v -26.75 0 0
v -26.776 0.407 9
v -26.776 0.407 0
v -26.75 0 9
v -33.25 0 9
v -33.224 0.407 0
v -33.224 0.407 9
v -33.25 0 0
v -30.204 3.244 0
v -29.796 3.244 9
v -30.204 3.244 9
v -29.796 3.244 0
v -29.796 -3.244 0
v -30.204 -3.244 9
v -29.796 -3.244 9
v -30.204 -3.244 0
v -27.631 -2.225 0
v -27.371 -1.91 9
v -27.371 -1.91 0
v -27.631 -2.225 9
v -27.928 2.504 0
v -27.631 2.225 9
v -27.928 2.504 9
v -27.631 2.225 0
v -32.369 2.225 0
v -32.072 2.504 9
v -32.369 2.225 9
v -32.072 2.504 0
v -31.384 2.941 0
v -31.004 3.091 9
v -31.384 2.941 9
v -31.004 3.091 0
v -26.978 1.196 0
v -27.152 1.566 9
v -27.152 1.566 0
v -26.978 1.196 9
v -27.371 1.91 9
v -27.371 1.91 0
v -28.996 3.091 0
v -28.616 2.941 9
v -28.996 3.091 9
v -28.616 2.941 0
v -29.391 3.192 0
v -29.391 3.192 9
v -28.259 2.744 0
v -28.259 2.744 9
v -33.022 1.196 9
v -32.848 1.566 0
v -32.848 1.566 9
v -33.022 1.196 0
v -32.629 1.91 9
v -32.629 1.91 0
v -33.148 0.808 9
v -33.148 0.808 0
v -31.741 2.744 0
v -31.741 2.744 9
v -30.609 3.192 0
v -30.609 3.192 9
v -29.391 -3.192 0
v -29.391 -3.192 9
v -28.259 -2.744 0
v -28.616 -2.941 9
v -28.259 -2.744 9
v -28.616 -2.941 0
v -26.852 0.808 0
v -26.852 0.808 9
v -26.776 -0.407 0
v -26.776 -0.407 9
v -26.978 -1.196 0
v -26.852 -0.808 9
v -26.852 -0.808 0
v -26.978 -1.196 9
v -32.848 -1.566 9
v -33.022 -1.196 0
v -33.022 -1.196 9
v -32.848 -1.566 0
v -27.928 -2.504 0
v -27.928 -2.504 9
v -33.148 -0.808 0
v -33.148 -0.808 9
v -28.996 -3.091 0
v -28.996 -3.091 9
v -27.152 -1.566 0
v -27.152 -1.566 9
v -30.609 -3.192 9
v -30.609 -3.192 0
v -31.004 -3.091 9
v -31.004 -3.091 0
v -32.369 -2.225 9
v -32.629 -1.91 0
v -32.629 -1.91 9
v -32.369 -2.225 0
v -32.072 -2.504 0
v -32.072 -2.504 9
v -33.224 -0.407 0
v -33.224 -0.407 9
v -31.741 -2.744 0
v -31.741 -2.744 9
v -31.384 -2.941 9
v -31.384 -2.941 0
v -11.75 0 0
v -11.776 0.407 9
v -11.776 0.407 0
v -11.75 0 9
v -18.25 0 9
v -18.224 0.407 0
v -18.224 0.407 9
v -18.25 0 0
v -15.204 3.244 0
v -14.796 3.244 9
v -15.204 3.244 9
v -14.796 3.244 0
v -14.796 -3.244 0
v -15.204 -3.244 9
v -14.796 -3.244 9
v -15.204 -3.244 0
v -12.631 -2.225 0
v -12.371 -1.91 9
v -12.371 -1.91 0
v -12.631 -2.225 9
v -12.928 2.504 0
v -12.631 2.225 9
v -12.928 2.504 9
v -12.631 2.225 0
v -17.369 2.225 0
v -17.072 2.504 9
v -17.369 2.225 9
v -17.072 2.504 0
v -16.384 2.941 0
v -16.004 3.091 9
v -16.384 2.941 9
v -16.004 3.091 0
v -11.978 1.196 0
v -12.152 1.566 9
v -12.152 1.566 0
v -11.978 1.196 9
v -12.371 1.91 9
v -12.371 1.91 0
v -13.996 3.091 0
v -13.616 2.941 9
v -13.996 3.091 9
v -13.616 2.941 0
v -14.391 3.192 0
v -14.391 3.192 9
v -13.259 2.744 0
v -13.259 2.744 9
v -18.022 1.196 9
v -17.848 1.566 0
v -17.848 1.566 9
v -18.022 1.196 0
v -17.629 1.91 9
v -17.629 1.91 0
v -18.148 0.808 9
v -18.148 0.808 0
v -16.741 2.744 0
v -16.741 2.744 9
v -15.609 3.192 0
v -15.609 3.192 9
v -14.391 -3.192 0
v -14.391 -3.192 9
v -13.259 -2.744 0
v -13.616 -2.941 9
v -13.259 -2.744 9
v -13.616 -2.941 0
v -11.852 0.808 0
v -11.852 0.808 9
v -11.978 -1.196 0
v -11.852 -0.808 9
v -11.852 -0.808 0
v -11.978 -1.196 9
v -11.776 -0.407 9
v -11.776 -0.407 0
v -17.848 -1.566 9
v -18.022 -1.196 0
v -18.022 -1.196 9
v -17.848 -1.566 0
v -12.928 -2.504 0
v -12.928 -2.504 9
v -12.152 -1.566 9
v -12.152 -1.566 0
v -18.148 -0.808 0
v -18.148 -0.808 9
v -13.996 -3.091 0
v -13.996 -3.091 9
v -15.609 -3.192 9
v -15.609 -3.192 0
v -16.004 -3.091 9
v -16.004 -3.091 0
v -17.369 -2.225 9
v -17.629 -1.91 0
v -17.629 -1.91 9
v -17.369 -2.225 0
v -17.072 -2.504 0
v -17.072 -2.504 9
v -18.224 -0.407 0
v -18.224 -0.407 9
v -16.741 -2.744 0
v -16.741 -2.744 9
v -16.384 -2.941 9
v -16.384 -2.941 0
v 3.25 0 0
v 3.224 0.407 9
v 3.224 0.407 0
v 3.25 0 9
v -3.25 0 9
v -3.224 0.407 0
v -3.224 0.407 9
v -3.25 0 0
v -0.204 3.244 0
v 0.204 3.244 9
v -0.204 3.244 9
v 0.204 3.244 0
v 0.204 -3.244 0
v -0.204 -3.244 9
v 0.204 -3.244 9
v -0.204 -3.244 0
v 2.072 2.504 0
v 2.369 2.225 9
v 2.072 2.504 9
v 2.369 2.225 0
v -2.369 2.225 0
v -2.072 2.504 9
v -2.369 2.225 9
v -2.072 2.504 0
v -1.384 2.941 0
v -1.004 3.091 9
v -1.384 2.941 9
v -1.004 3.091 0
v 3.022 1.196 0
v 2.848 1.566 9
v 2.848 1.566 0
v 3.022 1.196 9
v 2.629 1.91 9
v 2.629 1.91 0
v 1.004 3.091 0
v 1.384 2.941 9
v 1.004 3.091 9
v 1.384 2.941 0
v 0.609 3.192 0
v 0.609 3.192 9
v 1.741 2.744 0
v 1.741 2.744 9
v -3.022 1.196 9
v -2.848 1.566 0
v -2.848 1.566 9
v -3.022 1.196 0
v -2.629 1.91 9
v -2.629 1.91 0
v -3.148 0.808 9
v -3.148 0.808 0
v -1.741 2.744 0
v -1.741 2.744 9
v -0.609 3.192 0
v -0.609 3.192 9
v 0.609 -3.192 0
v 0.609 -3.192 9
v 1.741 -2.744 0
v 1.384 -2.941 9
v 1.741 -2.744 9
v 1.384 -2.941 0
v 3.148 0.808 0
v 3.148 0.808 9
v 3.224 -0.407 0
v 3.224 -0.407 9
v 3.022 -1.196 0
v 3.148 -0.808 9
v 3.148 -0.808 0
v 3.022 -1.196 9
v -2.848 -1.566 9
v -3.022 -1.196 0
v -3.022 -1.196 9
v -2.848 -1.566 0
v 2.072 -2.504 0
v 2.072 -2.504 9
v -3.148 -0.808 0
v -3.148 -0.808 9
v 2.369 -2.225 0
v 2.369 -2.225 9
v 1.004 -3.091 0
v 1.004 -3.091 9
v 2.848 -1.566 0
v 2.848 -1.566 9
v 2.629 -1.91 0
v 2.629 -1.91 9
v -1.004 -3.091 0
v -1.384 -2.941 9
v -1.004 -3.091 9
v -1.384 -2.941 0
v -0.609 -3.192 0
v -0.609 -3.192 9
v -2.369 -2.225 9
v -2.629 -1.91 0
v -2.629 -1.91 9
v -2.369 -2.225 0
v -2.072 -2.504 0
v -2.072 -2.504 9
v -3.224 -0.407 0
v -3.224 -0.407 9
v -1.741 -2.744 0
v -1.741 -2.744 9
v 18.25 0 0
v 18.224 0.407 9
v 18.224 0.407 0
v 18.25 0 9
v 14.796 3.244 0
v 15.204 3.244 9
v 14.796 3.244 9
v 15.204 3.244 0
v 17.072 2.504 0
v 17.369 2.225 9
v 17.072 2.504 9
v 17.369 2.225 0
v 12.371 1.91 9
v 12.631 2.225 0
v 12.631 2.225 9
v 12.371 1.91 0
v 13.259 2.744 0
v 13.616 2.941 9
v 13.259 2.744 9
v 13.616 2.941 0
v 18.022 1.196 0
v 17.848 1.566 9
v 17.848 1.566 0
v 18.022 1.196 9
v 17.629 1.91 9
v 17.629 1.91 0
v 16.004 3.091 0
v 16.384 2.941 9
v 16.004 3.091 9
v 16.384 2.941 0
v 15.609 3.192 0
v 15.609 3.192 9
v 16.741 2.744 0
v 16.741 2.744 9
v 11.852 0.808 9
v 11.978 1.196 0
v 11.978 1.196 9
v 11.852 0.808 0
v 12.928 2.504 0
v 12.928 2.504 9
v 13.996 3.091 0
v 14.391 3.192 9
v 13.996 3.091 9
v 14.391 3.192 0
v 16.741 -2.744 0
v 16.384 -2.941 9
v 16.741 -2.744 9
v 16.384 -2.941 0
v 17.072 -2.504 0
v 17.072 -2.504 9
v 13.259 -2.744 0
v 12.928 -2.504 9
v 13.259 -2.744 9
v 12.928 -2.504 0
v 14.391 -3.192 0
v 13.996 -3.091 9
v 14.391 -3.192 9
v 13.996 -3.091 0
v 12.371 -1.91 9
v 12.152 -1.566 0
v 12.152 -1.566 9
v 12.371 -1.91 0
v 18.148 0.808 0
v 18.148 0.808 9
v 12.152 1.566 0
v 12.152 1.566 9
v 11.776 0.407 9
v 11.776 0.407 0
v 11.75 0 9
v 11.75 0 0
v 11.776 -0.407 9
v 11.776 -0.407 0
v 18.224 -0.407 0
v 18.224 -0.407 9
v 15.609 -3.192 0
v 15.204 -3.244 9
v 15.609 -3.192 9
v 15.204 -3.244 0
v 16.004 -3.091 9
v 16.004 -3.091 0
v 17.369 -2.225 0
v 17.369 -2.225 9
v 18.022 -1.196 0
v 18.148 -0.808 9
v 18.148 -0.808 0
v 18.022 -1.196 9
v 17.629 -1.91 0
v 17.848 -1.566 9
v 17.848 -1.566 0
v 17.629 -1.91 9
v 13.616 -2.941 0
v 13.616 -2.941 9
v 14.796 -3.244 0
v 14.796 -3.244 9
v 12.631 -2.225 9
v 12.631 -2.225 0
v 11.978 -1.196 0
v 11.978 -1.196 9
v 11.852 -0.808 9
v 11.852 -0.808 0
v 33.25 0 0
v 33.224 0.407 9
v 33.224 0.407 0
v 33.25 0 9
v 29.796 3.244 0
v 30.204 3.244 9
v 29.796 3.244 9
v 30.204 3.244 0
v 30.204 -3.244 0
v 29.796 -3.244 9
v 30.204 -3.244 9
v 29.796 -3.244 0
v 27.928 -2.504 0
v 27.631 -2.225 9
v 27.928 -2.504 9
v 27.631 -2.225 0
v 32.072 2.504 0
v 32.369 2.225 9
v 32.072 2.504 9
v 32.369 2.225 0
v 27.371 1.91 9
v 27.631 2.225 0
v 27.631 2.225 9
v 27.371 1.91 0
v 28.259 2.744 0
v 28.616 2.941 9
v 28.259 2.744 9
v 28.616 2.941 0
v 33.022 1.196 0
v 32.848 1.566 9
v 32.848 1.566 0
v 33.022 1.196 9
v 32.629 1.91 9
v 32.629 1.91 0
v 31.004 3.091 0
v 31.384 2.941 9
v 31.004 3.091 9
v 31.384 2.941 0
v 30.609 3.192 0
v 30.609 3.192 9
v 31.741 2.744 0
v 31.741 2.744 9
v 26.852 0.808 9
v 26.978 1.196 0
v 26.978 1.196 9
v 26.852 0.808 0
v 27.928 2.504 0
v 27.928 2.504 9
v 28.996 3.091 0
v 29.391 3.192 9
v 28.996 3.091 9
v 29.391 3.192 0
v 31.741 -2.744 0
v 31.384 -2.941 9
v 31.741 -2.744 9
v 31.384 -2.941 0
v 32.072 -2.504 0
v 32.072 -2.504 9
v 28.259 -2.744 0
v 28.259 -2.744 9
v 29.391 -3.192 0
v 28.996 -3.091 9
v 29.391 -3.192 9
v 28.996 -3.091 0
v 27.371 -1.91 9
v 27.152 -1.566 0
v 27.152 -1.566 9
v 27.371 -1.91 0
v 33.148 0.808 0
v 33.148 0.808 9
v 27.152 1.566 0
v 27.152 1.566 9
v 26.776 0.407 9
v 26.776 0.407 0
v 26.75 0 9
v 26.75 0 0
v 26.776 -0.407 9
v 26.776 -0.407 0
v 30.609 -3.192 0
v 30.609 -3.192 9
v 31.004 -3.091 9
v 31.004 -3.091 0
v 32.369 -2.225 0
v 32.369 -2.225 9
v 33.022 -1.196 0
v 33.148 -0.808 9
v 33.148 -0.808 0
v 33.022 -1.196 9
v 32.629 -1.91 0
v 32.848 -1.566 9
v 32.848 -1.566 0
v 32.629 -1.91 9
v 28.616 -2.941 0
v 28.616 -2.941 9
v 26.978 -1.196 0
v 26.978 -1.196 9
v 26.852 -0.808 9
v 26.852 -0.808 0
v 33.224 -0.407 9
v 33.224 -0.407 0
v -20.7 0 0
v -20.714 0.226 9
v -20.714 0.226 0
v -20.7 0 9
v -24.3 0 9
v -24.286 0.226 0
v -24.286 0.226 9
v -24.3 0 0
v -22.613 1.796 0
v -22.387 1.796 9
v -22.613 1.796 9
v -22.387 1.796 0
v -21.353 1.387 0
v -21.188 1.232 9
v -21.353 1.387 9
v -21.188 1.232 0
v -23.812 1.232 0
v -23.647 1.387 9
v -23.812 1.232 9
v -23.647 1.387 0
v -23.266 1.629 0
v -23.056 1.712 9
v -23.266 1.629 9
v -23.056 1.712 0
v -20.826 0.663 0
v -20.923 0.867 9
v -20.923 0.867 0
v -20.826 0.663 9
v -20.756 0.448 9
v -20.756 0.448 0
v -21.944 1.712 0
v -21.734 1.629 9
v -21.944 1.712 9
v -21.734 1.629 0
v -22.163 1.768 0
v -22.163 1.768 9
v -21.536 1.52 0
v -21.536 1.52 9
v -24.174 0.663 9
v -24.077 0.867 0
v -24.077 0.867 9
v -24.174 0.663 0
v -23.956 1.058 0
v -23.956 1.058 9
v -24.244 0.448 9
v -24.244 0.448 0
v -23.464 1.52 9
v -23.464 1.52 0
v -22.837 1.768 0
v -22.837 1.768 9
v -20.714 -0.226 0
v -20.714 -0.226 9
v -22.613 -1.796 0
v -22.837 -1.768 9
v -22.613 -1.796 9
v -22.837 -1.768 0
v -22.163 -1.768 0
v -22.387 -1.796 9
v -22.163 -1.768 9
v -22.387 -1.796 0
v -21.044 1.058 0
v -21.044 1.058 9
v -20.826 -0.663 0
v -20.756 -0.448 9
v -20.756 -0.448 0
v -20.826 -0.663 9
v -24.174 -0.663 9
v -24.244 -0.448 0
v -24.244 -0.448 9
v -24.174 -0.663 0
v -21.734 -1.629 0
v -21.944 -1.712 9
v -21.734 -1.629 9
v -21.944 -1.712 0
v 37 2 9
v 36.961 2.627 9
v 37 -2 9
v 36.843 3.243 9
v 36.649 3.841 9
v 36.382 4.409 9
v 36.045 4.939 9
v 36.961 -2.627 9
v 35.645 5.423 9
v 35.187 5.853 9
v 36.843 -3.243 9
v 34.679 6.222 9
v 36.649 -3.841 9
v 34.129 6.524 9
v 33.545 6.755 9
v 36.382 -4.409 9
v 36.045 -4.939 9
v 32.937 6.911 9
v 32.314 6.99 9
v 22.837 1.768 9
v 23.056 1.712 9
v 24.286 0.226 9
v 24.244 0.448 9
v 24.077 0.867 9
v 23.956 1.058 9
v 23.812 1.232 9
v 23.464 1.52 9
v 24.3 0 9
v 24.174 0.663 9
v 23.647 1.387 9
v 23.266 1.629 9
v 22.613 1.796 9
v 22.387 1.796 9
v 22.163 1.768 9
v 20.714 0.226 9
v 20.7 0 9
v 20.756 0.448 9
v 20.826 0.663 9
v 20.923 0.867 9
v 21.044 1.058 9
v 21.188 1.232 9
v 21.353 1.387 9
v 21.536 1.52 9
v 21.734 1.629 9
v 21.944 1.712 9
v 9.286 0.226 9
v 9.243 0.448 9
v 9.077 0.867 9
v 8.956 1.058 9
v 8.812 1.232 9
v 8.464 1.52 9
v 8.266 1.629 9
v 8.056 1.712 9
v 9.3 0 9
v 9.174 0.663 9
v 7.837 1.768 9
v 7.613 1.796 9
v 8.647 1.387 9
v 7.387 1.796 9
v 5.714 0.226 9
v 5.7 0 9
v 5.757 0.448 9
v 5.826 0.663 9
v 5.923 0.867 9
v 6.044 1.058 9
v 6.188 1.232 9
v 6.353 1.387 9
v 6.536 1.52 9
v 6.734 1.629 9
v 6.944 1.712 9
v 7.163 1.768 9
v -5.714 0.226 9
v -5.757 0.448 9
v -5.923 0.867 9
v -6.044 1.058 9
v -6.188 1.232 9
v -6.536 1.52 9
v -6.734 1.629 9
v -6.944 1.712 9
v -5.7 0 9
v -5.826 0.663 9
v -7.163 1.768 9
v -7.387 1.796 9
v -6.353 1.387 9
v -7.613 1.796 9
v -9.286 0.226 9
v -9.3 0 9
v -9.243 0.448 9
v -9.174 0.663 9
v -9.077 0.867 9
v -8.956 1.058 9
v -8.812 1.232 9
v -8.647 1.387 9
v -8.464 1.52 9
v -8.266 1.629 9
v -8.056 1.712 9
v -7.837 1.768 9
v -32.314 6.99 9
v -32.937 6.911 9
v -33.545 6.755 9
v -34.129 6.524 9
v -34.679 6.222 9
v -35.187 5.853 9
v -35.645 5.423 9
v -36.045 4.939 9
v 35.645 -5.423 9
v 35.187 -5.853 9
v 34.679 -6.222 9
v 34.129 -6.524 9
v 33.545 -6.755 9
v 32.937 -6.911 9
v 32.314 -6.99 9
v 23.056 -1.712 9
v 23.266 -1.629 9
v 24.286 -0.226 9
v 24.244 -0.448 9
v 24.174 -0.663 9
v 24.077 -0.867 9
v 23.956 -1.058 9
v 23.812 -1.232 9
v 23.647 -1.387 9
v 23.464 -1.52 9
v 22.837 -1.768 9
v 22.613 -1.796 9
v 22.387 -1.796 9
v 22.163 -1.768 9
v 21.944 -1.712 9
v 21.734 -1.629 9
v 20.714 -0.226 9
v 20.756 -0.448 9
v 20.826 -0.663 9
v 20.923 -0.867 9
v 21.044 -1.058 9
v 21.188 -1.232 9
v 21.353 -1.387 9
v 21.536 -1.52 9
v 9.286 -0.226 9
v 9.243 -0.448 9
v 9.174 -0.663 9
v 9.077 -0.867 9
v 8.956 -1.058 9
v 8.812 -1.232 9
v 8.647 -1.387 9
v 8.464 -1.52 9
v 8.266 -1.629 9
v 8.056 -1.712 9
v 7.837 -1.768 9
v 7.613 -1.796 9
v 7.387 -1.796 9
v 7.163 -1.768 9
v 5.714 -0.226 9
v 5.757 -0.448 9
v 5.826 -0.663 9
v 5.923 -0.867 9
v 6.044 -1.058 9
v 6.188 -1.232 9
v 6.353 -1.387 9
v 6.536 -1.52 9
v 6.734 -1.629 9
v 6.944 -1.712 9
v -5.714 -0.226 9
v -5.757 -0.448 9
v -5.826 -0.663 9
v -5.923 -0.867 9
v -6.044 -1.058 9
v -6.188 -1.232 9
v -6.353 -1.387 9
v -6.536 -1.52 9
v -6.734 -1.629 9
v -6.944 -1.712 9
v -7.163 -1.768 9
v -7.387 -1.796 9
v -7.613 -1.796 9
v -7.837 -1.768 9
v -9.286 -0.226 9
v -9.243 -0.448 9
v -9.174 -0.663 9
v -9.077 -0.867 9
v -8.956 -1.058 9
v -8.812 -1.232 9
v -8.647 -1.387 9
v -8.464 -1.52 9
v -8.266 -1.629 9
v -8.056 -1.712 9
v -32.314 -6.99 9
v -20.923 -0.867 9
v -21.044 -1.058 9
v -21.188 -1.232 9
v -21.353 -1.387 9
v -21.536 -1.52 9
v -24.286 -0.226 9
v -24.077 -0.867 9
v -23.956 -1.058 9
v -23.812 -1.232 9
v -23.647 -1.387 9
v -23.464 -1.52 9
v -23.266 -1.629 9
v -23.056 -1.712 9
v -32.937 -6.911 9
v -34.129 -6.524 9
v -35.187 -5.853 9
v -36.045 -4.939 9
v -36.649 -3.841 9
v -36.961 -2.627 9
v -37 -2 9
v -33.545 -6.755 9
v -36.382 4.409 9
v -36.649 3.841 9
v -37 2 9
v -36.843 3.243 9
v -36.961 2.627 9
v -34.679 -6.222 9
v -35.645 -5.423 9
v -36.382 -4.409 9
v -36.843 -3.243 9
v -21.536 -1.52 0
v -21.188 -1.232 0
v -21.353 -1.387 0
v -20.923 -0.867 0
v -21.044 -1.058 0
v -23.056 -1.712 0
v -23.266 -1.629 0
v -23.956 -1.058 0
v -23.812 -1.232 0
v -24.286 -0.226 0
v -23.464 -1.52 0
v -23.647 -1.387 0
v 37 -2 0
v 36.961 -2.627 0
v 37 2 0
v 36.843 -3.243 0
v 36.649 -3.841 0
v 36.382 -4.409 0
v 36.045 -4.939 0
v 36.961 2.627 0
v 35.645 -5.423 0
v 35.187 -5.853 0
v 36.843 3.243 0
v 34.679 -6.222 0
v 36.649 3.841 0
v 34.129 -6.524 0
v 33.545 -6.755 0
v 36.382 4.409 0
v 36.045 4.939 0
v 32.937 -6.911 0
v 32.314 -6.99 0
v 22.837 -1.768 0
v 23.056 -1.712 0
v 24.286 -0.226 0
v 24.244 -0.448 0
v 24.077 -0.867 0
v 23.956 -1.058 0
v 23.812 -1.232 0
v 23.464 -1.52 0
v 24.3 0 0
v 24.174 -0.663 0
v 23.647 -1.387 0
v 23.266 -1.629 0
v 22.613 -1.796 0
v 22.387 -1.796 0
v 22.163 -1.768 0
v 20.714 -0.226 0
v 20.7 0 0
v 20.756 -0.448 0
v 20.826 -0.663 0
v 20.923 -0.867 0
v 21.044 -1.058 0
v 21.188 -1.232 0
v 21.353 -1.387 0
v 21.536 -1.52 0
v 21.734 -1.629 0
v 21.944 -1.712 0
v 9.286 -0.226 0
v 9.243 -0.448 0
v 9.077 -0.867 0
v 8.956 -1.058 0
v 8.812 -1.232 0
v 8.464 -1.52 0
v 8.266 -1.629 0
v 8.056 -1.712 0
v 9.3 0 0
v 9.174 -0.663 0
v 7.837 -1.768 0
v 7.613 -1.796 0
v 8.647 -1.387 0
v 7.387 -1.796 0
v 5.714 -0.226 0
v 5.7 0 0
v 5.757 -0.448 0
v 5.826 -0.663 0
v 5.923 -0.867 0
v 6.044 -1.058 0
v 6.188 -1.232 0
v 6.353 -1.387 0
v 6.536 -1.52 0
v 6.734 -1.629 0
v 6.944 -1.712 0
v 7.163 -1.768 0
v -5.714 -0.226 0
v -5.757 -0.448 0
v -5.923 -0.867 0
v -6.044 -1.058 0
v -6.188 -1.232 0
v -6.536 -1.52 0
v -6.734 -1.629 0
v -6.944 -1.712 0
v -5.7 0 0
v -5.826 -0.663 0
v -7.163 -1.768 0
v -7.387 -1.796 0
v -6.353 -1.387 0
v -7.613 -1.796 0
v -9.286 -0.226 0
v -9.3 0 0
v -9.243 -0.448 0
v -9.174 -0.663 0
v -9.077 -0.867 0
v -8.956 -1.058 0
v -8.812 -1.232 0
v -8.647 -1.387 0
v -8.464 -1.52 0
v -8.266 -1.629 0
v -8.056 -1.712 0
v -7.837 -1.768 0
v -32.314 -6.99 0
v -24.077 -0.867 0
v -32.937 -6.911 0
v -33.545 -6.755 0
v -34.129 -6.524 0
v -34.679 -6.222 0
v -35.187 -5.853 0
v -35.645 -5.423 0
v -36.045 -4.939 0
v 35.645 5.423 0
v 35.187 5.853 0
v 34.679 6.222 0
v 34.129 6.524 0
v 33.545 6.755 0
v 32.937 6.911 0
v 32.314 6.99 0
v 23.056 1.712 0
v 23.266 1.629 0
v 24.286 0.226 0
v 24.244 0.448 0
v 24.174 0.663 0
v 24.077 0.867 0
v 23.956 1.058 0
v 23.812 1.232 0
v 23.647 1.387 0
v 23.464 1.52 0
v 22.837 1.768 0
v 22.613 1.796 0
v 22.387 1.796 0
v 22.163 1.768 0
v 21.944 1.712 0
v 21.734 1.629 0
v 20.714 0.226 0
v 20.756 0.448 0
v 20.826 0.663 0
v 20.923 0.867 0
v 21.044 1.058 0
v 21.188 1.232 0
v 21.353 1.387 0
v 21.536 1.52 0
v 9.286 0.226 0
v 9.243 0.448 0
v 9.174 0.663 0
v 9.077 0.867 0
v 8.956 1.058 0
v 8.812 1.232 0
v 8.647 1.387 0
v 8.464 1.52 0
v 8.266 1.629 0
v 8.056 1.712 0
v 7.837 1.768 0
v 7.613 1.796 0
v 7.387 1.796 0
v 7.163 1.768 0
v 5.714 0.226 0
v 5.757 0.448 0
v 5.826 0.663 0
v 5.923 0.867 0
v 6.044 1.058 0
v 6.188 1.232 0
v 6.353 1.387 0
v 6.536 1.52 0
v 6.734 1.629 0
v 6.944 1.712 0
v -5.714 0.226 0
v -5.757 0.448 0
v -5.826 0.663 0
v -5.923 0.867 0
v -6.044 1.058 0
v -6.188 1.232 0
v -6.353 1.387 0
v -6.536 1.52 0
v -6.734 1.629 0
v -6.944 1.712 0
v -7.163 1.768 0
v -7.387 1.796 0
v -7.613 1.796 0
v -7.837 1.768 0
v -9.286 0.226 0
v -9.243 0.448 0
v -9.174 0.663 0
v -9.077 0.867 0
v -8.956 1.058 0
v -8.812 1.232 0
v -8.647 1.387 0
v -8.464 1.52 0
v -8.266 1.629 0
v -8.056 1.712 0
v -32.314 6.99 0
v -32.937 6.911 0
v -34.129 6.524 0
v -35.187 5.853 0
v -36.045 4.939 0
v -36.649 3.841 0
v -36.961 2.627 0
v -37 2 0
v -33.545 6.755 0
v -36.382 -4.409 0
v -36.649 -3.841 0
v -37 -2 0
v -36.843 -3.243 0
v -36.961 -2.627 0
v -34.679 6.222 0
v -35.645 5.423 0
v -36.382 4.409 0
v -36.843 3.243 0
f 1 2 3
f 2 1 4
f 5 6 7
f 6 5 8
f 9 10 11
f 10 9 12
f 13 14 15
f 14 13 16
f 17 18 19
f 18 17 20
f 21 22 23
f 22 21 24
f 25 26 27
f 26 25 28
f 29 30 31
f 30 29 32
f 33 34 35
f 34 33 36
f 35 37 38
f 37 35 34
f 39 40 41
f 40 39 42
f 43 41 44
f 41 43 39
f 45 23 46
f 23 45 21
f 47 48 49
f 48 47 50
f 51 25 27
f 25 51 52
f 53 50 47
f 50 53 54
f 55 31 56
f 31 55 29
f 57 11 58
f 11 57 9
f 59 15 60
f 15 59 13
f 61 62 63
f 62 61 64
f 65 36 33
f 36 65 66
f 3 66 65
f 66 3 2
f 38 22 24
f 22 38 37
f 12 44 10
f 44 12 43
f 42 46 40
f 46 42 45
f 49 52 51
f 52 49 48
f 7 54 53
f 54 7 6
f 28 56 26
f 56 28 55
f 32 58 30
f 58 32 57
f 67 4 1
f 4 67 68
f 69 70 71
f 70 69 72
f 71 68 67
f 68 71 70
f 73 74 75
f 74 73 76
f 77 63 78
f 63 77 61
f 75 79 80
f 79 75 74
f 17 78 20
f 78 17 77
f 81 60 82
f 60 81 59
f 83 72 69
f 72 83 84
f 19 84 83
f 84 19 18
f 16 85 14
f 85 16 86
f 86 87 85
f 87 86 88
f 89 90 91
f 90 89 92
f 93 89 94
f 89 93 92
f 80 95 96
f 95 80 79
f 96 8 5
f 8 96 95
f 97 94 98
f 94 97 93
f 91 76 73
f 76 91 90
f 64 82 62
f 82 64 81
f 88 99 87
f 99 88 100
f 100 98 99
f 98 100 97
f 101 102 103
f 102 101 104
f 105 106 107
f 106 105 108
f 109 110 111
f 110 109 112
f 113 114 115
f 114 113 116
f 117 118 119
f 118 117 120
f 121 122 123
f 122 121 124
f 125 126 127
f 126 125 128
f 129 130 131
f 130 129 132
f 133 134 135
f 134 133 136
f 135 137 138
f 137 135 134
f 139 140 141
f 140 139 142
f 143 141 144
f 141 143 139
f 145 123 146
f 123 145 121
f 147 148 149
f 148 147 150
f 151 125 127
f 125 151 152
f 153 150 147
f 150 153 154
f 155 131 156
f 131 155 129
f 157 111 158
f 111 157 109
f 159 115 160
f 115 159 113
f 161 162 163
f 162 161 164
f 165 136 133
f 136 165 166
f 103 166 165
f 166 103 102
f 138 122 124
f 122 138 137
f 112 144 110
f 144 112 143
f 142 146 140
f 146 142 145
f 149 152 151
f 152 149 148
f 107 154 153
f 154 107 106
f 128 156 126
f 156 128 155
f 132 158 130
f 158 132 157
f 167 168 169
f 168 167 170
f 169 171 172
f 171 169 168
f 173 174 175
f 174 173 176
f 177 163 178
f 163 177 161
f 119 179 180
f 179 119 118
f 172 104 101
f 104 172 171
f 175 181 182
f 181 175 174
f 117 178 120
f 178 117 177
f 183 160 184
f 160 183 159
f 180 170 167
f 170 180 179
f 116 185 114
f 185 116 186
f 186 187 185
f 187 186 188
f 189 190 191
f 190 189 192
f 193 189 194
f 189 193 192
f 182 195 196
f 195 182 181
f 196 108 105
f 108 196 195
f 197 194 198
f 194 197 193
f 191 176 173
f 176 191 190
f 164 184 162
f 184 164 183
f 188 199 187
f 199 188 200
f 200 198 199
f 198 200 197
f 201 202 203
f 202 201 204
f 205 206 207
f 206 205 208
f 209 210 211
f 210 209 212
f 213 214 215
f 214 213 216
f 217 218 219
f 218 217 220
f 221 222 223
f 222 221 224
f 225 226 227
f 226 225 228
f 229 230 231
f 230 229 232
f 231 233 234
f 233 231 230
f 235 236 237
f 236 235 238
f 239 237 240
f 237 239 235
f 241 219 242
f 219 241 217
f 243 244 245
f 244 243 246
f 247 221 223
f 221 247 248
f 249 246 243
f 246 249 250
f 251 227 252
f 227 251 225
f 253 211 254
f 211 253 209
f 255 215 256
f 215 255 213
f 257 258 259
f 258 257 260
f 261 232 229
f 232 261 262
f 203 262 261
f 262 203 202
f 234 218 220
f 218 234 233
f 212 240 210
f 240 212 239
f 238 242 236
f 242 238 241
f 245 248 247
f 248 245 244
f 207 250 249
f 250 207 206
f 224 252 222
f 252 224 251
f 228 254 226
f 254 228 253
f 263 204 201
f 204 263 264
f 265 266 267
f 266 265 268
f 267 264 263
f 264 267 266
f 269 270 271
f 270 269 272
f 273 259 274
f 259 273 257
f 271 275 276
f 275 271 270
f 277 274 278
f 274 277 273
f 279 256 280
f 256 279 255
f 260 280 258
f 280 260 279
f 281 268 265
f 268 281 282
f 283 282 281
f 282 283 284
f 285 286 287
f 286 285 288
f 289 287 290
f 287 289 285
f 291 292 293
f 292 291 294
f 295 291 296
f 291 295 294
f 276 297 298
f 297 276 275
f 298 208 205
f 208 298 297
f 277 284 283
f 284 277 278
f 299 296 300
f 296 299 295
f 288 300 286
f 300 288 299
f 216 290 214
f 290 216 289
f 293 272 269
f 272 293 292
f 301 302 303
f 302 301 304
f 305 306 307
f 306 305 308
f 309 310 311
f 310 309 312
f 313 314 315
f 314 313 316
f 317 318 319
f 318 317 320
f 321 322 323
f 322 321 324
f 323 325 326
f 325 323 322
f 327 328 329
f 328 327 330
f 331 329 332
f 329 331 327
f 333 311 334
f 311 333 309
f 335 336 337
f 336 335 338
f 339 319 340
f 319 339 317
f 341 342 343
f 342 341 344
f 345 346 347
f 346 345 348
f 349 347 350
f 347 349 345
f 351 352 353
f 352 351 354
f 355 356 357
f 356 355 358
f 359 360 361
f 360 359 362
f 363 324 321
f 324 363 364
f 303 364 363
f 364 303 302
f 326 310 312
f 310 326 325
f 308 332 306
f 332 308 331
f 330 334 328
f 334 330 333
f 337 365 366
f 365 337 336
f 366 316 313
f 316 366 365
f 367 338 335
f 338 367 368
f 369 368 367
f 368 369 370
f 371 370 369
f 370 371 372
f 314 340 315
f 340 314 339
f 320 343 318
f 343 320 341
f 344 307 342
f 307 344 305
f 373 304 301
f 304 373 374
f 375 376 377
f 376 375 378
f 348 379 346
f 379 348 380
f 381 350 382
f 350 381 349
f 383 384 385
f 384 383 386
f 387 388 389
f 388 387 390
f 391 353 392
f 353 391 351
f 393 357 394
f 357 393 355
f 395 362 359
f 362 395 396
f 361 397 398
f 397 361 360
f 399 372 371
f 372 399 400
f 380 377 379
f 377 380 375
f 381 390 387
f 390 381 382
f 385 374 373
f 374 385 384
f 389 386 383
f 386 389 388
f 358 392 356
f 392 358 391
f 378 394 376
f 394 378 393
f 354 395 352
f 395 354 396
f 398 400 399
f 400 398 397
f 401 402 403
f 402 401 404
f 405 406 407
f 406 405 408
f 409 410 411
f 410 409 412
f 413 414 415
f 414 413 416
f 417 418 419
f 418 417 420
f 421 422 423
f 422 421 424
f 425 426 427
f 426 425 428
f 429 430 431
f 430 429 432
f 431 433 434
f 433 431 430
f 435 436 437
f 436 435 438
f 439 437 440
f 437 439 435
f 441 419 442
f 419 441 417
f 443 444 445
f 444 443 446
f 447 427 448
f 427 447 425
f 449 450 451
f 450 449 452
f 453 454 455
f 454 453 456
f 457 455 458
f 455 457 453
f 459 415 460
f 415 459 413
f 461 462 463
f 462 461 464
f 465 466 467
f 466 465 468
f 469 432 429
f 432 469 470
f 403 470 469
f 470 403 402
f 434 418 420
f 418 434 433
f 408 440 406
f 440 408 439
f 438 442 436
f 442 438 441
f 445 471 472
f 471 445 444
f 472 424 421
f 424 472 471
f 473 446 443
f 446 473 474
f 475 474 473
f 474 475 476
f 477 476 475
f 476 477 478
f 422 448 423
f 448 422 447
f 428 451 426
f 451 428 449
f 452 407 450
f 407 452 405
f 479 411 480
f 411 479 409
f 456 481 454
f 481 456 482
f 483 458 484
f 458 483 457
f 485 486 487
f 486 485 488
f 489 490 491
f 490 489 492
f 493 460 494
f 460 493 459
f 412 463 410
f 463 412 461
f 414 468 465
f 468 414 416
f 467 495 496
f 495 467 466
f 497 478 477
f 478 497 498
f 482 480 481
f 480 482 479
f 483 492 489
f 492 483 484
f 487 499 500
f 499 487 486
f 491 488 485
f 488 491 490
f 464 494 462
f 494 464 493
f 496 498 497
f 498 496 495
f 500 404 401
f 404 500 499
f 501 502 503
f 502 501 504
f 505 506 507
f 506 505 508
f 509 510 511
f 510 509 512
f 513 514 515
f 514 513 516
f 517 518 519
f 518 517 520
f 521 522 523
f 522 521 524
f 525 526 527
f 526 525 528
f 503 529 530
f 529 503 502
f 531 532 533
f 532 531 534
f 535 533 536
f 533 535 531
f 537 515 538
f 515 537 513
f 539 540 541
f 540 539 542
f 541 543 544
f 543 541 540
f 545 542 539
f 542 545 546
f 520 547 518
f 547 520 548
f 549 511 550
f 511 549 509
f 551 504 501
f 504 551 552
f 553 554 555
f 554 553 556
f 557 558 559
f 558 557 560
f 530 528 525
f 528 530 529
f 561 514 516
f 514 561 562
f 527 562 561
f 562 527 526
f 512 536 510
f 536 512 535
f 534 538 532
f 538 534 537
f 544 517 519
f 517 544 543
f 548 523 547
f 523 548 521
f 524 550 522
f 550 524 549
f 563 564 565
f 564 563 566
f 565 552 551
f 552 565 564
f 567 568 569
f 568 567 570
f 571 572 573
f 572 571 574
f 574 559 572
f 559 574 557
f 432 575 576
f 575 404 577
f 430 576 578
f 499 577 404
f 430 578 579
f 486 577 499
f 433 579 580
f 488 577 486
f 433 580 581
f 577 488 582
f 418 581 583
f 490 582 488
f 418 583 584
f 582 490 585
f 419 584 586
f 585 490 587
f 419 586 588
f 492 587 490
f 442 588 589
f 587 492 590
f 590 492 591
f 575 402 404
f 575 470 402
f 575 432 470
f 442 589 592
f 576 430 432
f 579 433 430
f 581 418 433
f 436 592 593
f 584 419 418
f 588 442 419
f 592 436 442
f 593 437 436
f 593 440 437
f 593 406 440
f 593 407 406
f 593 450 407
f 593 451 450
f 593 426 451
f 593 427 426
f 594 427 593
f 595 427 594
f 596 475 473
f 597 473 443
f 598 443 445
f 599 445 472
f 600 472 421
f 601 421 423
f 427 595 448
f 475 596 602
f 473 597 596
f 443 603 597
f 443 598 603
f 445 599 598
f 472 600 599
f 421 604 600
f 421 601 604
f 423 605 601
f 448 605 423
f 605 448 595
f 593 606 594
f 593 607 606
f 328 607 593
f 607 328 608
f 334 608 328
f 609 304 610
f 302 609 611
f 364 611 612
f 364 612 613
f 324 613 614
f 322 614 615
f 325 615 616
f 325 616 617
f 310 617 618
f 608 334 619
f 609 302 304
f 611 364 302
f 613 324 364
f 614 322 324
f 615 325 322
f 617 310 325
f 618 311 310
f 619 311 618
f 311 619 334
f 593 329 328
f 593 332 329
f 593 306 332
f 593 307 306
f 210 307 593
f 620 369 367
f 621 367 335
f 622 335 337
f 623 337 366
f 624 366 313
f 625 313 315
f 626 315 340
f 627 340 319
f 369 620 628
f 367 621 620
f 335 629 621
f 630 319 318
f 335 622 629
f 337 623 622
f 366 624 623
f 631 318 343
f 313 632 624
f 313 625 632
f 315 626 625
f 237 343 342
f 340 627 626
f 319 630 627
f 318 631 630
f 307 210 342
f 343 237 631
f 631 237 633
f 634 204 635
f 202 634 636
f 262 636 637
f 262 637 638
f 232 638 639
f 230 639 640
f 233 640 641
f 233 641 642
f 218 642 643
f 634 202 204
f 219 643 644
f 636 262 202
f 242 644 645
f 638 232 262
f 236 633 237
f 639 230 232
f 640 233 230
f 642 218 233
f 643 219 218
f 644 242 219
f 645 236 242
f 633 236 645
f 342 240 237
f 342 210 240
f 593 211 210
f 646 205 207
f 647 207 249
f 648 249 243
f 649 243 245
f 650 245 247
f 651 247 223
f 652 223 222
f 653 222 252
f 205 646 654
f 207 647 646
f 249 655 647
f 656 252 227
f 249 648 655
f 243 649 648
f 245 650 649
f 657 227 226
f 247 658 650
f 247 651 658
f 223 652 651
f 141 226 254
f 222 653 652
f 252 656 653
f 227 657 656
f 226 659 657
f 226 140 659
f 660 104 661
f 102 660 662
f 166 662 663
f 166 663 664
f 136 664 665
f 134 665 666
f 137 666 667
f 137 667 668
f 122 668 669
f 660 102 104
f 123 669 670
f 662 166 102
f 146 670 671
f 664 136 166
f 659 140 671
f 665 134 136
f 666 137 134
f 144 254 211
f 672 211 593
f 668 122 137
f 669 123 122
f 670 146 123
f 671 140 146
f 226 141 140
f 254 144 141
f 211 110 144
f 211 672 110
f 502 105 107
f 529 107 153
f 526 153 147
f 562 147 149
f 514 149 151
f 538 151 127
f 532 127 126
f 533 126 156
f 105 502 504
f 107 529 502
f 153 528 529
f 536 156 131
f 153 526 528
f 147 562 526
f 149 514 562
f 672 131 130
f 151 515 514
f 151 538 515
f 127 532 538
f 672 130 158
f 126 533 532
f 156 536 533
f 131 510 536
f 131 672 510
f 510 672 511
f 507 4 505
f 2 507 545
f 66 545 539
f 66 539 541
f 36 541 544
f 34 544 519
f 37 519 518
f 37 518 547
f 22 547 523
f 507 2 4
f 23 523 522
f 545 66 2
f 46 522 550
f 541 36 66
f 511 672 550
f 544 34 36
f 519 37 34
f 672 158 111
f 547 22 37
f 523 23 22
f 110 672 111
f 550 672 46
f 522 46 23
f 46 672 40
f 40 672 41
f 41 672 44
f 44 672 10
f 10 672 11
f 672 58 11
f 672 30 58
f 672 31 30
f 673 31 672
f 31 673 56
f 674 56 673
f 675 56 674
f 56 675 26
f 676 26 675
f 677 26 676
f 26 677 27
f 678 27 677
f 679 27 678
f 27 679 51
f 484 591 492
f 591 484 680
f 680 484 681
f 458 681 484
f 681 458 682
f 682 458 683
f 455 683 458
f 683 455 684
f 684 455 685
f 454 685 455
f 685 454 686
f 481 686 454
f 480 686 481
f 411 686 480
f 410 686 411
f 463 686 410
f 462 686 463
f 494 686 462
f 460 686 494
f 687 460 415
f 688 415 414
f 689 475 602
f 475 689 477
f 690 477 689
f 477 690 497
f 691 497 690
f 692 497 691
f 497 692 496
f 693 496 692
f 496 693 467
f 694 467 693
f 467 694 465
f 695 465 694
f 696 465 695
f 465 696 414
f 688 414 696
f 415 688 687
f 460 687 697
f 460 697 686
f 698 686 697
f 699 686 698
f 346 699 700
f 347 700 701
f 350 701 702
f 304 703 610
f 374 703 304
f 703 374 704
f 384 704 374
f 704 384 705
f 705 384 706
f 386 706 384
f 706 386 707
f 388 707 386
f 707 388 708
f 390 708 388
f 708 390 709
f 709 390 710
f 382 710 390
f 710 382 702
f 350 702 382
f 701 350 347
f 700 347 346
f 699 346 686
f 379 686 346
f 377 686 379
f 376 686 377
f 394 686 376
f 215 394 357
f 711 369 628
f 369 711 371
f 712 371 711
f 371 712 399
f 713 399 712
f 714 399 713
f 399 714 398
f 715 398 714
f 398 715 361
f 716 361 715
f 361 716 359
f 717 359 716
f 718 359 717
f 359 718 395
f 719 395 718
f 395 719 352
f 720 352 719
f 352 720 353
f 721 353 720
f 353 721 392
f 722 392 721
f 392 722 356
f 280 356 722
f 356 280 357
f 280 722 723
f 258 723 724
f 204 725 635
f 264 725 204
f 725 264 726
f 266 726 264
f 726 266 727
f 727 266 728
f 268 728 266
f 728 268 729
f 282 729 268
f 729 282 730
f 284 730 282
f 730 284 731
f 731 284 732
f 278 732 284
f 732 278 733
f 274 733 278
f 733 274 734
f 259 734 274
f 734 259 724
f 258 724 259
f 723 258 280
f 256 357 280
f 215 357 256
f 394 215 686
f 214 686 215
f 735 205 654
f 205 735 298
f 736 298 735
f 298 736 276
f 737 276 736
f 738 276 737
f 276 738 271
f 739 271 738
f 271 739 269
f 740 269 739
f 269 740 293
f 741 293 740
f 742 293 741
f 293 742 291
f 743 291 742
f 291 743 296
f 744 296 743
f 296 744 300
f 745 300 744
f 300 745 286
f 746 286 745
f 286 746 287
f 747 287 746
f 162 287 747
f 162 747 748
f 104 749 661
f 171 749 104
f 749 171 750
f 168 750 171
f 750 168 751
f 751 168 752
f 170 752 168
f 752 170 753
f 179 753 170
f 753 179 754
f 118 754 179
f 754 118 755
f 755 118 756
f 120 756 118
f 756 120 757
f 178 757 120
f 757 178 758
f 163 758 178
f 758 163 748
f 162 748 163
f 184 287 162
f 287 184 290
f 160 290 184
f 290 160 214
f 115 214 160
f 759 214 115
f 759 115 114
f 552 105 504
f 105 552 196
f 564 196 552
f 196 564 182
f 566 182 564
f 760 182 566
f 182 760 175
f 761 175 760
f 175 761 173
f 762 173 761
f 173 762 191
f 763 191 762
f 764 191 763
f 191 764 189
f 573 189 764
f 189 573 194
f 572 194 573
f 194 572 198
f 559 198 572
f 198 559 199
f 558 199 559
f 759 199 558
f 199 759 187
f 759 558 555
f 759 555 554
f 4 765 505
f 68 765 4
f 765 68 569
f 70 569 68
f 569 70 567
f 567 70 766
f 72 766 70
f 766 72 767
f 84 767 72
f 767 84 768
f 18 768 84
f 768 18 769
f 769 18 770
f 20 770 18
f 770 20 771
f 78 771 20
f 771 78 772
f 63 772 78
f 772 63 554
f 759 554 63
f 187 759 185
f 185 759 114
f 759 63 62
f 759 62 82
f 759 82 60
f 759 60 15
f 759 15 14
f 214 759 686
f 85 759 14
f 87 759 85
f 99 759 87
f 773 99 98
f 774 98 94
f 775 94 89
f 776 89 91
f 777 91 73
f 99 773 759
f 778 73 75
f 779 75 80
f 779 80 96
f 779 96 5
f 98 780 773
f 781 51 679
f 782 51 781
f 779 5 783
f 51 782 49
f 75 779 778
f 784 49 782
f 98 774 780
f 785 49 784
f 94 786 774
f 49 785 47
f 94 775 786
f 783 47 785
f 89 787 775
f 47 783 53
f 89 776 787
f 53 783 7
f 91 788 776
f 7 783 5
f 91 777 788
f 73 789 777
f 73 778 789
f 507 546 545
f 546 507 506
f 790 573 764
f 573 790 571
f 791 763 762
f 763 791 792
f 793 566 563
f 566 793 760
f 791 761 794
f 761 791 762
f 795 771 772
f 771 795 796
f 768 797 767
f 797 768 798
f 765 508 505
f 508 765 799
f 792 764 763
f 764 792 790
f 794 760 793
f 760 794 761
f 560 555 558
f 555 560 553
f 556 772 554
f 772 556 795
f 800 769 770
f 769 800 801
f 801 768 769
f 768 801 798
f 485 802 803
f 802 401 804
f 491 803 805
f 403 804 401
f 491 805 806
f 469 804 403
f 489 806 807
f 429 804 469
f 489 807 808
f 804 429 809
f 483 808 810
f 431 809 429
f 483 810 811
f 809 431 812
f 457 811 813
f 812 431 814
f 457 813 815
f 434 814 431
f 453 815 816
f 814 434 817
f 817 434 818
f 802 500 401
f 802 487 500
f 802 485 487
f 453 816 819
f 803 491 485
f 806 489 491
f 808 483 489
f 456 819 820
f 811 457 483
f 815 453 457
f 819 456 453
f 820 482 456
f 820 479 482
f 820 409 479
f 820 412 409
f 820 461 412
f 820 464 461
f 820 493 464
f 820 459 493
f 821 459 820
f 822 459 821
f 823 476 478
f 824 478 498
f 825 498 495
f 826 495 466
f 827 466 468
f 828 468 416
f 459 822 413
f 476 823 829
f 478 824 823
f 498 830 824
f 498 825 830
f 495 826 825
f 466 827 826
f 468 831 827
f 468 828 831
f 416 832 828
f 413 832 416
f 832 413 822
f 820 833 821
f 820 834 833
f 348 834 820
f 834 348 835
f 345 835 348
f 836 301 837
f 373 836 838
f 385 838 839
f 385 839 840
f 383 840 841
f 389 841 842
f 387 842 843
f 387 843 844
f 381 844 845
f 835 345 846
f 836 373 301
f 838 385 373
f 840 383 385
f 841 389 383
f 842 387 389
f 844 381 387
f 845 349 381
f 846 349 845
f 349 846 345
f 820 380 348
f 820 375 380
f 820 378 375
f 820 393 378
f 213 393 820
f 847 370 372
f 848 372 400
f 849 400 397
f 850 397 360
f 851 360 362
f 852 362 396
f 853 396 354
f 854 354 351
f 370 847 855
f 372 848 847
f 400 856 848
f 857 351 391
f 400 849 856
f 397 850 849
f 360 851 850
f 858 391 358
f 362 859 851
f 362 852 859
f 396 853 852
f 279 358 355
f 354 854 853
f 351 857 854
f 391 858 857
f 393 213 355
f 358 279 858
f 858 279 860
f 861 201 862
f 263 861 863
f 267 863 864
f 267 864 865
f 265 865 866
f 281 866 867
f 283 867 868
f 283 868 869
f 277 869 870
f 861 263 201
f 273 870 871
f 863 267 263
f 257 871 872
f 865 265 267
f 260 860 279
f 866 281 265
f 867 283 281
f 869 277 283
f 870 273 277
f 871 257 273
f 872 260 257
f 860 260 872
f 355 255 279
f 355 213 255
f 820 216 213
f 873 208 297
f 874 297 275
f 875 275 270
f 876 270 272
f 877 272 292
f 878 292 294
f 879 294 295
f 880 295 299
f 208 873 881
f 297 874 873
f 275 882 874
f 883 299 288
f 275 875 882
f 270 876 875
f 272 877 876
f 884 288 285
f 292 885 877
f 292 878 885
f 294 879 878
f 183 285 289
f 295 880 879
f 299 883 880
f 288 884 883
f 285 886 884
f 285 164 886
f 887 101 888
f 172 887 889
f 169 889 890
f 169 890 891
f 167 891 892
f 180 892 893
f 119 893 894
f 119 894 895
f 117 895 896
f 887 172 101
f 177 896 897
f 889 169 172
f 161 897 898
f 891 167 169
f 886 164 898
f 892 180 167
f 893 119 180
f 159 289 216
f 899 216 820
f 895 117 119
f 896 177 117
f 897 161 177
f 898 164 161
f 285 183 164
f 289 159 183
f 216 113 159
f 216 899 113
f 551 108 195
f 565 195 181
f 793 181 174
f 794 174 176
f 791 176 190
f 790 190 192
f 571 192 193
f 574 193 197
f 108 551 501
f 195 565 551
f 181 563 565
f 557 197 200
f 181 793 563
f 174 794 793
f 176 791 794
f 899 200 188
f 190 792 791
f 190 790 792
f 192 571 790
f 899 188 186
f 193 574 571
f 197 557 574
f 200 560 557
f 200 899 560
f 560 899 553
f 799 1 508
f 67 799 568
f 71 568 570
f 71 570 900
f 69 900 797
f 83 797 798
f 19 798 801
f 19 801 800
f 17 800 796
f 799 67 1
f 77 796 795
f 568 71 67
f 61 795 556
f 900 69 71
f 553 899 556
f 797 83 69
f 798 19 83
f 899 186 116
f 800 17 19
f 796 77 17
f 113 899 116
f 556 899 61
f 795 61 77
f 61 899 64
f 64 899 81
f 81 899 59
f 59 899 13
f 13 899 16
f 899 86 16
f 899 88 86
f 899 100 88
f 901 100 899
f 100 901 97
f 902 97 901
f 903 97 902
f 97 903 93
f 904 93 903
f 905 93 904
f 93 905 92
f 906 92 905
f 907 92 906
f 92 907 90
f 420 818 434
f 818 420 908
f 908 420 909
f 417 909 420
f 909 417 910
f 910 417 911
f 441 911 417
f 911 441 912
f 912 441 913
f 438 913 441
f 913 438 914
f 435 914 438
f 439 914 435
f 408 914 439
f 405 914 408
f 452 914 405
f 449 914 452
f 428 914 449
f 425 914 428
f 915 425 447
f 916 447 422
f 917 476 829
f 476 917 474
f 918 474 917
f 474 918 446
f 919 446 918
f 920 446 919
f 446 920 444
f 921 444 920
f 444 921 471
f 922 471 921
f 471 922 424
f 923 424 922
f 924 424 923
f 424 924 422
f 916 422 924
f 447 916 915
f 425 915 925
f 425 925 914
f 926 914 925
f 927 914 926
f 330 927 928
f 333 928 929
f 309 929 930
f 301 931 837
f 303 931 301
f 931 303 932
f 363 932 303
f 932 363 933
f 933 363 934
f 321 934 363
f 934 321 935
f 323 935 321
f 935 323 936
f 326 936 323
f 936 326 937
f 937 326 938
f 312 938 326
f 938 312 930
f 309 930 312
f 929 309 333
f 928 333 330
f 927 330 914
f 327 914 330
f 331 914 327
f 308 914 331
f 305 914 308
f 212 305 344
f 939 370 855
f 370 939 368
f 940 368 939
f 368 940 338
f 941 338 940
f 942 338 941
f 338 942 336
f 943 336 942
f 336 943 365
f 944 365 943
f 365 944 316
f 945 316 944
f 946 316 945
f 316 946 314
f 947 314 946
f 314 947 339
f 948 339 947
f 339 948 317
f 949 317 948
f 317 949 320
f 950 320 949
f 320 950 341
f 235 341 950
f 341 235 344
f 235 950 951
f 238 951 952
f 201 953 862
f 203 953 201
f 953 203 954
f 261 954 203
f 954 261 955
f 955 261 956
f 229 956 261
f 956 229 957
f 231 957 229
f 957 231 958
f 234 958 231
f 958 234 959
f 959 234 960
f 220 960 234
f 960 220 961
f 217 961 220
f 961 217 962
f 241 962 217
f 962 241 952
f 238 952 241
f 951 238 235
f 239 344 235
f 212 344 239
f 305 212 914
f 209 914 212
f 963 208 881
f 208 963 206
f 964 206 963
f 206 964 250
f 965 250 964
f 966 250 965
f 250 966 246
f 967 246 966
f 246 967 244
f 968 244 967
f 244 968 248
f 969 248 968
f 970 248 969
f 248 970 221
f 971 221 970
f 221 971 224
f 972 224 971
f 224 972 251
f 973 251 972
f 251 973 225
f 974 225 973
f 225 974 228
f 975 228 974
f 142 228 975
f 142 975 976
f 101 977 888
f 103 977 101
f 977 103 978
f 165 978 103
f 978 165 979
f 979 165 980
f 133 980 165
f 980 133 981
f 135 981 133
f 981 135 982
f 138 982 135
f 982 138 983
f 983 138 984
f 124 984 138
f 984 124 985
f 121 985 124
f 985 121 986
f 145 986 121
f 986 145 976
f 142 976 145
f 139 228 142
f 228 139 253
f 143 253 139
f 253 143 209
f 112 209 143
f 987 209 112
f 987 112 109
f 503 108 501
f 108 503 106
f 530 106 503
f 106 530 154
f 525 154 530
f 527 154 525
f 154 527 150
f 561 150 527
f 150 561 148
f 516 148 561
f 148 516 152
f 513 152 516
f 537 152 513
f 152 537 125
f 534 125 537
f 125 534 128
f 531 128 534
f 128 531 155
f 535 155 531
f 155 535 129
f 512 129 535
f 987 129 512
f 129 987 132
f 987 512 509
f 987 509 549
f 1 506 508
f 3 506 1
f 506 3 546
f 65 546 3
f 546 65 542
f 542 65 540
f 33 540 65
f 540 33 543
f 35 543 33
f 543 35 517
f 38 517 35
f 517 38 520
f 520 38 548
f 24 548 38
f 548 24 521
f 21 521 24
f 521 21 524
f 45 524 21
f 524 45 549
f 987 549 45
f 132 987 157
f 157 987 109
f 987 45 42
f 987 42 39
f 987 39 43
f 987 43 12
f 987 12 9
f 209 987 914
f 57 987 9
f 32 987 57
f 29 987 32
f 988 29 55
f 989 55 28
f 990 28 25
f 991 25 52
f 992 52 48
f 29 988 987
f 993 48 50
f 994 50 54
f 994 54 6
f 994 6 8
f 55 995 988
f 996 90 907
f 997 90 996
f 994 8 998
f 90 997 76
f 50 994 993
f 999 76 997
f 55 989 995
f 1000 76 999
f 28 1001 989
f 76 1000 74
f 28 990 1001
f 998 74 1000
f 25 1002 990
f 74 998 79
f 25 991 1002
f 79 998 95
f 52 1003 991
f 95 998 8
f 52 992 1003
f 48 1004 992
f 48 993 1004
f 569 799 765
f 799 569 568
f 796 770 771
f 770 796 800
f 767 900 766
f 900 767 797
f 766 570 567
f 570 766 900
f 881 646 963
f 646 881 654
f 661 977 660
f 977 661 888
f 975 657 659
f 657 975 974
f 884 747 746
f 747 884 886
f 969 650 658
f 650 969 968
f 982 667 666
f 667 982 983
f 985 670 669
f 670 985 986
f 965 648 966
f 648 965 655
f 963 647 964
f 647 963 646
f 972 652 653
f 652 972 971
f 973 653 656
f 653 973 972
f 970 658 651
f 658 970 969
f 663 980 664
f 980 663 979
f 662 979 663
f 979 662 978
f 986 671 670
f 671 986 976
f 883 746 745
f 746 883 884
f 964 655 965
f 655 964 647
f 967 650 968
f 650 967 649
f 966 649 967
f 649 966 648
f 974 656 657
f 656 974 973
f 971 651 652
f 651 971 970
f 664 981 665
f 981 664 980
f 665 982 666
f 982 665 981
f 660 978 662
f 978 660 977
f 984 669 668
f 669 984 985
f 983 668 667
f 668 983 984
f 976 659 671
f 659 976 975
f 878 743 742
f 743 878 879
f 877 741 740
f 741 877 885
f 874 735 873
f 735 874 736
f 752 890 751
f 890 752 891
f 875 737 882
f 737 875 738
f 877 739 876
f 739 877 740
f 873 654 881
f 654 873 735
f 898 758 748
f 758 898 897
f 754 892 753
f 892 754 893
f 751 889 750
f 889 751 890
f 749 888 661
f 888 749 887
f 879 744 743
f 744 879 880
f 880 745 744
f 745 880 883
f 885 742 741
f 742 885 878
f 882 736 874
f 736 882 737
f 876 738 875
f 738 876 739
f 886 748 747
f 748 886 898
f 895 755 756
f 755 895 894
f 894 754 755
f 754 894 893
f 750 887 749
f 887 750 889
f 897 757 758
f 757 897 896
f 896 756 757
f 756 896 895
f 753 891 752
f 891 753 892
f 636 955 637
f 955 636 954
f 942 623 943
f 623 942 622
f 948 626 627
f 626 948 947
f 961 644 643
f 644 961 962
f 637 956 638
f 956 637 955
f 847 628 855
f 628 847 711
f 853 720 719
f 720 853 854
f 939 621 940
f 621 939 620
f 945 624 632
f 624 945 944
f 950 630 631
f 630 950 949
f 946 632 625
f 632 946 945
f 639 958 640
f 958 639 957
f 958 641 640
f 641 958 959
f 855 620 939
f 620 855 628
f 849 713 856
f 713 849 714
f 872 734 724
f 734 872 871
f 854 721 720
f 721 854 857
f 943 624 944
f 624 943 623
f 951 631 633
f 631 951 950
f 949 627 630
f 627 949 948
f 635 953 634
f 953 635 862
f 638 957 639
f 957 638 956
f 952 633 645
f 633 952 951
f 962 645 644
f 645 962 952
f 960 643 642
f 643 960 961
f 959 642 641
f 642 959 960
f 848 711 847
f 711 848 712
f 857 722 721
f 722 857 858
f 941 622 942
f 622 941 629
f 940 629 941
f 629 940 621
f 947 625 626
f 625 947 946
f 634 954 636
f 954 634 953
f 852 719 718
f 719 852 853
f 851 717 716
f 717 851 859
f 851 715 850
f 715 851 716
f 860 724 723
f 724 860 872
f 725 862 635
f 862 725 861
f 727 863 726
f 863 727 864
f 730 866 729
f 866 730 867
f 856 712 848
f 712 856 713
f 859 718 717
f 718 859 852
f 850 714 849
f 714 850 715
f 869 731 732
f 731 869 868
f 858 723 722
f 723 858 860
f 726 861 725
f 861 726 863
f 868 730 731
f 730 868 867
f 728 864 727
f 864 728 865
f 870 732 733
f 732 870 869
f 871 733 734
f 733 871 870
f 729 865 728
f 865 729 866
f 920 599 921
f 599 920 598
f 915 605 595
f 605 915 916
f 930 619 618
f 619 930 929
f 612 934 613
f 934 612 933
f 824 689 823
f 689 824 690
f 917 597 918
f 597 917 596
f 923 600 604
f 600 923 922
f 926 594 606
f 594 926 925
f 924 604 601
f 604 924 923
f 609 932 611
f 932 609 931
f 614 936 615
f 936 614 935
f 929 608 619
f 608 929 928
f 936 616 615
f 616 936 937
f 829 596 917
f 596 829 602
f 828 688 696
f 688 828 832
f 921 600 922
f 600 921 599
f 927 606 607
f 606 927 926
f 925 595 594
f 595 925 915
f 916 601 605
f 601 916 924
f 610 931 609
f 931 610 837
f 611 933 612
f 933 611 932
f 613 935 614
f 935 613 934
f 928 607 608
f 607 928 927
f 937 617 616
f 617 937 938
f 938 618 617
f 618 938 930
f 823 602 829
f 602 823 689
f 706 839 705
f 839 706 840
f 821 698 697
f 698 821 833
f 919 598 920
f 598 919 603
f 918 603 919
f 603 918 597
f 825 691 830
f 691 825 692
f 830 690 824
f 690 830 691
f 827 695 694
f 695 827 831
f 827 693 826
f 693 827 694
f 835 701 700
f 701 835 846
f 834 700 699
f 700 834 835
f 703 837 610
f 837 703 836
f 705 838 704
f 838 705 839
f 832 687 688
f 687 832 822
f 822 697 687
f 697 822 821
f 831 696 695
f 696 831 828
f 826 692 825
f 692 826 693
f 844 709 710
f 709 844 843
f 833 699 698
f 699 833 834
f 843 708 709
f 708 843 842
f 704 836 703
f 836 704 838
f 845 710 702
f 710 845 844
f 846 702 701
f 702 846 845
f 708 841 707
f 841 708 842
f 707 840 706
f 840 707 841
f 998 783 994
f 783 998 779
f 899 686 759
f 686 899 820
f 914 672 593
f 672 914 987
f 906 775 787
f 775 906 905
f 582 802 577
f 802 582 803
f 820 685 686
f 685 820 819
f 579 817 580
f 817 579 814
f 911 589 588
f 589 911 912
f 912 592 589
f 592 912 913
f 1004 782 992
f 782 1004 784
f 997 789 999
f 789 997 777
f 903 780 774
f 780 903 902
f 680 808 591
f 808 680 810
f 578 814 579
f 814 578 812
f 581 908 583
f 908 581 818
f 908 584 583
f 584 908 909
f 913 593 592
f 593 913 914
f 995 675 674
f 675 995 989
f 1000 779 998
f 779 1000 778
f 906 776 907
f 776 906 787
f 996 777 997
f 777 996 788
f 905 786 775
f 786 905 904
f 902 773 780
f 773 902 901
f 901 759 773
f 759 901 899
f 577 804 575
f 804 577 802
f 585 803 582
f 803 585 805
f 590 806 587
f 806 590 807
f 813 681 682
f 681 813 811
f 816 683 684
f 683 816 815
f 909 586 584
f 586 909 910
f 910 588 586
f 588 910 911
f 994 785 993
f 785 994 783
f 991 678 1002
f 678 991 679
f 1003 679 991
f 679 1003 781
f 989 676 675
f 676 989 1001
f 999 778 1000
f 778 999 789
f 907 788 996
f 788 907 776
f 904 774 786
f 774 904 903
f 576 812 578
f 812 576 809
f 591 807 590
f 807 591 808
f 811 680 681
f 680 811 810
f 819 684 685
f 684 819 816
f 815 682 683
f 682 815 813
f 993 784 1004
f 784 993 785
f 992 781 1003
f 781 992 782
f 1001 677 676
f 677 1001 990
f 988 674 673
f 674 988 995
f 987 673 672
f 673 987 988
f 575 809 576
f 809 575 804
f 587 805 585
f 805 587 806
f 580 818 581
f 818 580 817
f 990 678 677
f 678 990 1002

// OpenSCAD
$fn = 50;


difference() {
	union() {
		hull() {
			translate(v = [-32.0000000000, 2.0000000000, 0]) {
				cylinder(h = 9, r = 5);
			}
			translate(v = [32.0000000000, 2.0000000000, 0]) {
				cylinder(h = 9, r = 5);
			}
			translate(v = [-32.0000000000, -2.0000000000, 0]) {
				cylinder(h = 9, r = 5);
			}
			translate(v = [32.0000000000, -2.0000000000, 0]) {
				cylinder(h = 9, r = 5);
			}
		}
	}
	union() {
		translate(v = [-30.0000000000, 0.0000000000, -100.0000000000]) {
			cylinder(h = 200, r = 3.2500000000);
		}
		translate(v = [-15.0000000000, 0.0000000000, -100.0000000000]) {
			cylinder(h = 200, r = 3.2500000000);
		}
		translate(v = [0.0000000000, 0.0000000000, -100.0000000000]) {
			cylinder(h = 200, r = 3.2500000000);
		}
		translate(v = [15.0000000000, 0.0000000000, -100.0000000000]) {
			cylinder(h = 200, r = 3.2500000000);
		}
		translate(v = [30.0000000000, 0.0000000000, -100.0000000000]) {
			cylinder(h = 200, r = 3.2500000000);
		}
		translate(v = [-30.0000000000, 0.0000000000, 0]) {
			cylinder(h = 9, r = 1.8000000000);
		}
		translate(v = [-22.5000000000, 0.0000000000, 0]) {
			cylinder(h = 9, r = 1.8000000000);
		}
		translate(v = [-15.0000000000, 0.0000000000, 0]) {
			cylinder(h = 9, r = 1.8000000000);
		}
		translate(v = [-7.5000000000, 0.0000000000, 0]) {
			cylinder(h = 9, r = 1.8000000000);
		}
		cylinder(h = 9, r = 1.8000000000);
		translate(v = [7.5000000000, 0.0000000000, 0]) {
			cylinder(h = 9, r = 1.8000000000);
		}
		translate(v = [15.0000000000, 0.0000000000, 0]) {
			cylinder(h = 9, r = 1.8000000000);
		}
		translate(v = [22.5000000000, 0.0000000000, 0]) {
			cylinder(h = 9, r = 1.8000000000);
		}
		translate(v = [30.0000000000, 0.0000000000, 0]) {
			cylinder(h = 9, r = 1.8000000000);
		}
		translate(v = [-30.0000000000, 0.0000000000, 0]) {
			cylinder(h = 9, r = 1.8000000000);
		}
		translate(v = [-22.5000000000, 0.0000000000, 0]) {
			cylinder(h = 9, r = 1.8000000000);
		}
		translate(v = [-15.0000000000, 0.0000000000, 0]) {
			cylinder(h = 9, r = 1.8000000000);
		}
		translate(v = [-7.5000000000, 0.0000000000, 0]) {
			cylinder(h = 9, r = 1.8000000000);
		}
		cylinder(h = 9, r = 1.8000000000);
		translate(v = [7.5000000000, 0.0000000000, 0]) {
			cylinder(h = 9, r = 1.8000000000);
		}
		translate(v = [15.0000000000, 0.0000000000, 0]) {
			cylinder(h = 9, r = 1.8000000000);
		}
		translate(v = [22.5000000000, 0.0000000000, 0]) {
			cylinder(h = 9, r = 1.8000000000);
		}
		translate(v = [30.0000000000, 0.0000000000, 0]) {
			cylinder(h = 9, r = 1.8000000000);
		}
		translate(v = [-30.0000000000, 0.0000000000, 0]) {
			cylinder(h = 9, r = 1.8000000000);
		}
		translate(v = [-22.5000000000, 0.0000000000, 0]) {
			cylinder(h = 9, r = 1.8000000000);
		}
		translate(v = [-15.0000000000, 0.0000000000, 0]) {
			cylinder(h = 9, r = 1.8000000000);
		}
		translate(v = [-7.5000000000, 0.0000000000, 0]) {
			cylinder(h = 9, r = 1.8000000000);
		}
		cylinder(h = 9, r = 1.8000000000);
		translate(v = [7.5000000000, 0.0000000000, 0]) {
			cylinder(h = 9, r = 1.8000000000);
		}
		translate(v = [15.0000000000, 0.0000000000, 0]) {
			cylinder(h = 9, r = 1.8000000000);
		}
		translate(v = [22.5000000000, 0.0000000000, 0]) {
			cylinder(h = 9, r = 1.8000000000);
		}
		translate(v = [30.0000000000, 0.0000000000, 0]) {
			cylinder(h = 9, r = 1.8000000000);
		}
	}
}
